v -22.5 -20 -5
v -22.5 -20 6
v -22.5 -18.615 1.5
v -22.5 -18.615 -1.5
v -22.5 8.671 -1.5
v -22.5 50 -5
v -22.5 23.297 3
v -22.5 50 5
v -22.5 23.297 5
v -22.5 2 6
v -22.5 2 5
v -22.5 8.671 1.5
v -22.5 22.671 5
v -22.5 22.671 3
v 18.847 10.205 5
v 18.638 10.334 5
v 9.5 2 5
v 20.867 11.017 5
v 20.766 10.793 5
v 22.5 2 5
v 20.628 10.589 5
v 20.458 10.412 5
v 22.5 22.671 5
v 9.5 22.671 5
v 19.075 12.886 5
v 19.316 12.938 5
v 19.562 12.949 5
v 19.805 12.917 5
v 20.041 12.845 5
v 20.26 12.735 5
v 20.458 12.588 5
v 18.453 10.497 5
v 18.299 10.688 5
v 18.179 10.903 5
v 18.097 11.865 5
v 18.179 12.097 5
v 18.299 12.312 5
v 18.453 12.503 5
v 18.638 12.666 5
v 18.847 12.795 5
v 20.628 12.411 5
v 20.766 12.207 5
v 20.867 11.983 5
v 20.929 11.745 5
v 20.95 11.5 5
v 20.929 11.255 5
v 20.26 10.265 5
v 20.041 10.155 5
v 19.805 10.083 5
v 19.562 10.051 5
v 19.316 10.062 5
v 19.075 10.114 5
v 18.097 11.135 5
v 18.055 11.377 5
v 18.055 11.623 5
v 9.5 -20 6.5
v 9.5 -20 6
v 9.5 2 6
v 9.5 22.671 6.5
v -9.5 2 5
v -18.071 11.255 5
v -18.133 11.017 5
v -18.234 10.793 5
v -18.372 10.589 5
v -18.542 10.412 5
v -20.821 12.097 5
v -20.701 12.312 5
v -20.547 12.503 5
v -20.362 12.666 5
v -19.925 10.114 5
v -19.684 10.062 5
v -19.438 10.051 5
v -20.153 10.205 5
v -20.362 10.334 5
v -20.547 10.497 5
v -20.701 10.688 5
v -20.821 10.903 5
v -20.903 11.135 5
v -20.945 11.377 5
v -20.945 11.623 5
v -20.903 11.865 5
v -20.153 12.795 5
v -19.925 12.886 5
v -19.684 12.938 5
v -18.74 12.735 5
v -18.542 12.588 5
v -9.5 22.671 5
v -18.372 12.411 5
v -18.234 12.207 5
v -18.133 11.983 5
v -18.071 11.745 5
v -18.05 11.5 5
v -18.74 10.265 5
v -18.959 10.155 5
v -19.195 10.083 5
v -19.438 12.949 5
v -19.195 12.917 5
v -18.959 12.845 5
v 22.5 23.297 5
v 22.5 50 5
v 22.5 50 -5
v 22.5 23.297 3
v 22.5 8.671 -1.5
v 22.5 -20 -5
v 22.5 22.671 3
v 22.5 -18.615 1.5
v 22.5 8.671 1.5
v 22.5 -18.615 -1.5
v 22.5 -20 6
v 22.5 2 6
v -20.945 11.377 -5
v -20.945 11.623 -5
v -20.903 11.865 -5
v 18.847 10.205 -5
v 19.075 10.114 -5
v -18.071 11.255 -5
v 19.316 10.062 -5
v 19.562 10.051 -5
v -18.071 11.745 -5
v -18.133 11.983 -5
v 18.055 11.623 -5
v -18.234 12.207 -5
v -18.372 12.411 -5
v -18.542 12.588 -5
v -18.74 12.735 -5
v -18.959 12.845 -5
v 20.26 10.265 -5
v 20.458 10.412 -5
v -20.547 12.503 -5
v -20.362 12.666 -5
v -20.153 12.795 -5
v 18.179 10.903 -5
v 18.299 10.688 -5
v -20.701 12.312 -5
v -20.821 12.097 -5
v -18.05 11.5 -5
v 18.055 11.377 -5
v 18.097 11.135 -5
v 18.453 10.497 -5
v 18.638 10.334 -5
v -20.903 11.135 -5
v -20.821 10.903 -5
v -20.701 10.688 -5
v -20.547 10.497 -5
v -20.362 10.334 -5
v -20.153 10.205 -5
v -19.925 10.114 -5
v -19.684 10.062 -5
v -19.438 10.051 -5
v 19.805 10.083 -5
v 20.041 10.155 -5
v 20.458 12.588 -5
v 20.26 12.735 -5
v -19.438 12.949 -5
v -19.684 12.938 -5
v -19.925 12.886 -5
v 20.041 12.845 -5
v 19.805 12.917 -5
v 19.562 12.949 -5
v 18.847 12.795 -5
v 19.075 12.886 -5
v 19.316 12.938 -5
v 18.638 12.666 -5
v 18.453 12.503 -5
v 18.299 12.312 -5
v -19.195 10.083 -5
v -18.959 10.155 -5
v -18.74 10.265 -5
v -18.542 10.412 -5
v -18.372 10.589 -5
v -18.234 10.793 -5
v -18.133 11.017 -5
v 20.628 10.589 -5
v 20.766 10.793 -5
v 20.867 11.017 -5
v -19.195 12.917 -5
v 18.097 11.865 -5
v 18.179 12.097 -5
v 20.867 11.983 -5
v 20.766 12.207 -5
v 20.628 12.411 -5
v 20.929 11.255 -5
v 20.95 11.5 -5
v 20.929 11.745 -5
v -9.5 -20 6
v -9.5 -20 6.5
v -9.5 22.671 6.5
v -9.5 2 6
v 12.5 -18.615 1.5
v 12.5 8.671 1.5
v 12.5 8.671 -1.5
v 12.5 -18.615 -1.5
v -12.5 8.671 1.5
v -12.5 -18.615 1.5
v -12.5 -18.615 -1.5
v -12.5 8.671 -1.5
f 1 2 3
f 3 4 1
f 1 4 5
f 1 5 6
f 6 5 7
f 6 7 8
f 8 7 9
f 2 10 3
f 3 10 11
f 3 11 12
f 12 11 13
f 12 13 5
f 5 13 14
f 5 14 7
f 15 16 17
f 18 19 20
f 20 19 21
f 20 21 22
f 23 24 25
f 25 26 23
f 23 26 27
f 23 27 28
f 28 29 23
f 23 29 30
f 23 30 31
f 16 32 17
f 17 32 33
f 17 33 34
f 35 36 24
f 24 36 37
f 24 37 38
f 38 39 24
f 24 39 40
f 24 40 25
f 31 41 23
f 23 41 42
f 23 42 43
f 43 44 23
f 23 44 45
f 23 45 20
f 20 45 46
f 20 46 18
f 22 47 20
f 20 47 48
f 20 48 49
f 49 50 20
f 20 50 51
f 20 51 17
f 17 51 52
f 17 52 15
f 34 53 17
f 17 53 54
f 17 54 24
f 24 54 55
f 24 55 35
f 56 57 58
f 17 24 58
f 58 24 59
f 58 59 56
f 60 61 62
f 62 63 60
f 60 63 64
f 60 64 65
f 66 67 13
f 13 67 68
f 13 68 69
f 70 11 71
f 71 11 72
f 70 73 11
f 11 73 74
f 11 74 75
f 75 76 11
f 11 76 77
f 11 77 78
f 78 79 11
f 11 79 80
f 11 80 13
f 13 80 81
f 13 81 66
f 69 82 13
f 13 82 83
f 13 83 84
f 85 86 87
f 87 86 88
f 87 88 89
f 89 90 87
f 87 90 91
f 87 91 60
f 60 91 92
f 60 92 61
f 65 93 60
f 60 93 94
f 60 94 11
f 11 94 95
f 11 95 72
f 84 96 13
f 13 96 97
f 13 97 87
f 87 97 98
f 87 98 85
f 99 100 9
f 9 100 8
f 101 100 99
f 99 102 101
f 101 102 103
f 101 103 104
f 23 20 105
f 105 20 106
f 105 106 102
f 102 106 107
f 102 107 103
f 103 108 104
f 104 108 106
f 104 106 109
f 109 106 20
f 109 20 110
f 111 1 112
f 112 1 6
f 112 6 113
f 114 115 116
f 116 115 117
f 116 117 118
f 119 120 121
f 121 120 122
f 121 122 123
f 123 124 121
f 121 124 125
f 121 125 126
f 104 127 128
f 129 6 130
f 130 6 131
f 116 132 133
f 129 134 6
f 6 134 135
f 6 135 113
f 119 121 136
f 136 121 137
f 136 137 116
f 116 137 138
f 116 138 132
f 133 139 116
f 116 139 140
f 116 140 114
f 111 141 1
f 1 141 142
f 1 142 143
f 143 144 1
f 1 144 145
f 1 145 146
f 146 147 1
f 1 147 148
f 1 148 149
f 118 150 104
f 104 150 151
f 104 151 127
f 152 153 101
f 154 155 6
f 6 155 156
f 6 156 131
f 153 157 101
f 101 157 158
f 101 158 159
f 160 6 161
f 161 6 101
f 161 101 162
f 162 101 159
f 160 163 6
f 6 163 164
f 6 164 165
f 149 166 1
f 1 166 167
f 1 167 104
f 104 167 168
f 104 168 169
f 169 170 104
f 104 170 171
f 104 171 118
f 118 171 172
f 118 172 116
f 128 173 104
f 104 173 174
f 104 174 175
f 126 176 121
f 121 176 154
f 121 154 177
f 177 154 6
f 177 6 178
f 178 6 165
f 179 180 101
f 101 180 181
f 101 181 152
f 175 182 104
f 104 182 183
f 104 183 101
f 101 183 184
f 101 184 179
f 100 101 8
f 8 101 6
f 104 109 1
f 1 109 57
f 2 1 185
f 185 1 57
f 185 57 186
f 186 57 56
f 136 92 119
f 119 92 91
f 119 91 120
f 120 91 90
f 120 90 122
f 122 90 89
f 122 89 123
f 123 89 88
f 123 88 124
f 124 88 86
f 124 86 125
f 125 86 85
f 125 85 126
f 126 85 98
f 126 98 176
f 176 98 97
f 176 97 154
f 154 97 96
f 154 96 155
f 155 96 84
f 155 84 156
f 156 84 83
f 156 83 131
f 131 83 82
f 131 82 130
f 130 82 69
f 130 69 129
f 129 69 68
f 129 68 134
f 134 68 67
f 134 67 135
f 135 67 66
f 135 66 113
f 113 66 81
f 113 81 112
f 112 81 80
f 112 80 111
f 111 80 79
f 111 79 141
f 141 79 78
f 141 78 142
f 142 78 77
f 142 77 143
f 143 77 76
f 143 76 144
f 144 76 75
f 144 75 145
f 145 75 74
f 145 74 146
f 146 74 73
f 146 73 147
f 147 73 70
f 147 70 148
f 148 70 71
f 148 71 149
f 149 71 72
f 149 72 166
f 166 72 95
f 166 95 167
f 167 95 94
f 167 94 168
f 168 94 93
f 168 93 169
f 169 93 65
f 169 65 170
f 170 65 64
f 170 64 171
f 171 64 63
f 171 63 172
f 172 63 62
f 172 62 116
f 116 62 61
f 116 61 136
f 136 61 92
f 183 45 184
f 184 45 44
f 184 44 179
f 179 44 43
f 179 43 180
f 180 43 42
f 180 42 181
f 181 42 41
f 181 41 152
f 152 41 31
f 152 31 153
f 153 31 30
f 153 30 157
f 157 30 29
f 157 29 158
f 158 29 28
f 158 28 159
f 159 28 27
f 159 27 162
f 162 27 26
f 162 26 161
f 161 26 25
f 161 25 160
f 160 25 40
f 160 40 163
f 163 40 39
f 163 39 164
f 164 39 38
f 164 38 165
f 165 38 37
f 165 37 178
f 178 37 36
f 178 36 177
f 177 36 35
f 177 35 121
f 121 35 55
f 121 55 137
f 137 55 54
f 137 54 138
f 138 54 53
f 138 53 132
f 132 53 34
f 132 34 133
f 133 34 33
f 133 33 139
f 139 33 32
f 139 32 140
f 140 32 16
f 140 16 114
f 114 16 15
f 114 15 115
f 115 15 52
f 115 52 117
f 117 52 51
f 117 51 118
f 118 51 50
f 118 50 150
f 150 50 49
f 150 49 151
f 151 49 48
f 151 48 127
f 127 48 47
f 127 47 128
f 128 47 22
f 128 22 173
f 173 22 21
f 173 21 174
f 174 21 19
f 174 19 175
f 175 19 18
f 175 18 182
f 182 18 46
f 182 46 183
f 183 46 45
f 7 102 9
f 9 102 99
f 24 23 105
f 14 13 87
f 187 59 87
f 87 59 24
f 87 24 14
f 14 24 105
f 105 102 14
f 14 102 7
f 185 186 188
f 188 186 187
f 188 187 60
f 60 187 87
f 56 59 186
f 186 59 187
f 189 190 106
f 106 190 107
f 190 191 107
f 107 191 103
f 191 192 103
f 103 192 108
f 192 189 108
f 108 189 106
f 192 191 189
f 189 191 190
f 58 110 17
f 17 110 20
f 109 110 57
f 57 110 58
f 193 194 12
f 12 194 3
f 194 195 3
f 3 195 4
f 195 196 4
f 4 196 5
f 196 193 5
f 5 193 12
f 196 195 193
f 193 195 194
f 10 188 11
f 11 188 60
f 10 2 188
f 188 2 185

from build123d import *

# Parameters (mm, degrees)
SKETCH2_W           = 45
SKETCH2_H           = 10
BOSS_EXTRUDE1_DEPTH = 40
SKETCH4_W           = 45
SKETCH4_H           = 10
BOSS_EXTRUDE2_DEPTH = 10
SKETCH8_W           = 45
SKETCH8_H           = 10
BOSS_EXTRUDE3_DEPTH = 20
SKETCH9_R           = 1.45
CUT_EXTRUDE2_DEPTH  = 20
SKETCH10_W          = 45
SKETCH10_H          = 0.626165357
CUT_EXTRUDE3_DEPTH  = 2
SKETCH11_W          = 19
SKETCH11_H          = 42.671327575
BOSS_EXTRUDE4_DEPTH = 1.5
SKETCH12_W          = 3
SKETCH12_H          = 27.286335608
CUT_EXTRUDE6_DEPTH  = 10
SKETCH13_W          = 13
SKETCH13_H          = 22
BOSS_EXTRUDE5_DEPTH = 1


with BuildPart() as part:
    # Sketch2 → Boss-Extrude1 (new body)
    with BuildSketch(Plane(origin=(0, 0, 0), x_dir=(1, 0, 0), z_dir=(0, 1, 0))):
        Rectangle(SKETCH2_W, SKETCH2_H)
    extrude(amount=BOSS_EXTRUDE1_DEPTH)

    # Sketch4 → Boss-Extrude2 (add)
    with BuildSketch(Plane(origin=(0, 40, 0), x_dir=(1, 0, 0), z_dir=(0, 1, 0))):
        Rectangle(SKETCH4_W, SKETCH4_H)
    extrude(amount=BOSS_EXTRUDE2_DEPTH)

    # Sketch8 → Boss-Extrude3 (add)
    with BuildSketch(Plane.XZ):
        Rectangle(SKETCH8_W, SKETCH8_H)
    extrude(amount=BOSS_EXTRUDE3_DEPTH)

    # Sketch9 → Cut-Extrude2 (cut)
    with BuildSketch(Plane.XY.offset(5)):
        with Locations((19.5, 11.5)):
            Circle(SKETCH9_R)
        with Locations((-19.5, 11.5)):
            Circle(SKETCH9_R)
    extrude(amount=-CUT_EXTRUDE2_DEPTH, mode=Mode.SUBTRACT)

    # Sketch10 → Cut-Extrude3 (cut)
    with BuildSketch(Plane.XY.offset(5)):
        with Locations((0, 22.984410254)):
            Rectangle(SKETCH10_W, SKETCH10_H)
    extrude(amount=-CUT_EXTRUDE3_DEPTH, mode=Mode.SUBTRACT)

    # Sketch11 → Boss-Extrude4 (add)
    with BuildSketch(Plane.XY.offset(5)):
        with Locations((0, 1.335663788)):
            Rectangle(SKETCH11_W, SKETCH11_H)
    extrude(amount=BOSS_EXTRUDE4_DEPTH)

    # Sketch12 → Cut-Extrude6 (cut)
    with BuildSketch(Plane(origin=(22.5, 0, 0), x_dir=(0, 0, -1), z_dir=(1, 0, 0))):
        with Locations((0, -4.971840229)):
            Rectangle(SKETCH12_W, SKETCH12_H)
    cut_extrude6 = extrude(amount=-CUT_EXTRUDE6_DEPTH, mode=Mode.SUBTRACT)

    # Sketch13 → Boss-Extrude5 (add)
    with BuildSketch(Plane.XY.offset(5)):
        with Locations((16, -9)):
            Rectangle(SKETCH13_W, SKETCH13_H)
    boss_extrude5 = extrude(amount=BOSS_EXTRUDE5_DEPTH)

    # Mirror1: Cut-Extrude6 across plane
    add(cut_extrude6.mirror(Plane(origin=(0, 0, 0), x_dir=(0, 0, 1), z_dir=(1, 0, 0))), mode=Mode.SUBTRACT)

    # Mirror2: Boss-Extrude5 across plane
    add(boss_extrude5.mirror(Plane(origin=(0, 0, 0), x_dir=(0, 0, 1), z_dir=(1, 0, 0))))


solid = part.part
